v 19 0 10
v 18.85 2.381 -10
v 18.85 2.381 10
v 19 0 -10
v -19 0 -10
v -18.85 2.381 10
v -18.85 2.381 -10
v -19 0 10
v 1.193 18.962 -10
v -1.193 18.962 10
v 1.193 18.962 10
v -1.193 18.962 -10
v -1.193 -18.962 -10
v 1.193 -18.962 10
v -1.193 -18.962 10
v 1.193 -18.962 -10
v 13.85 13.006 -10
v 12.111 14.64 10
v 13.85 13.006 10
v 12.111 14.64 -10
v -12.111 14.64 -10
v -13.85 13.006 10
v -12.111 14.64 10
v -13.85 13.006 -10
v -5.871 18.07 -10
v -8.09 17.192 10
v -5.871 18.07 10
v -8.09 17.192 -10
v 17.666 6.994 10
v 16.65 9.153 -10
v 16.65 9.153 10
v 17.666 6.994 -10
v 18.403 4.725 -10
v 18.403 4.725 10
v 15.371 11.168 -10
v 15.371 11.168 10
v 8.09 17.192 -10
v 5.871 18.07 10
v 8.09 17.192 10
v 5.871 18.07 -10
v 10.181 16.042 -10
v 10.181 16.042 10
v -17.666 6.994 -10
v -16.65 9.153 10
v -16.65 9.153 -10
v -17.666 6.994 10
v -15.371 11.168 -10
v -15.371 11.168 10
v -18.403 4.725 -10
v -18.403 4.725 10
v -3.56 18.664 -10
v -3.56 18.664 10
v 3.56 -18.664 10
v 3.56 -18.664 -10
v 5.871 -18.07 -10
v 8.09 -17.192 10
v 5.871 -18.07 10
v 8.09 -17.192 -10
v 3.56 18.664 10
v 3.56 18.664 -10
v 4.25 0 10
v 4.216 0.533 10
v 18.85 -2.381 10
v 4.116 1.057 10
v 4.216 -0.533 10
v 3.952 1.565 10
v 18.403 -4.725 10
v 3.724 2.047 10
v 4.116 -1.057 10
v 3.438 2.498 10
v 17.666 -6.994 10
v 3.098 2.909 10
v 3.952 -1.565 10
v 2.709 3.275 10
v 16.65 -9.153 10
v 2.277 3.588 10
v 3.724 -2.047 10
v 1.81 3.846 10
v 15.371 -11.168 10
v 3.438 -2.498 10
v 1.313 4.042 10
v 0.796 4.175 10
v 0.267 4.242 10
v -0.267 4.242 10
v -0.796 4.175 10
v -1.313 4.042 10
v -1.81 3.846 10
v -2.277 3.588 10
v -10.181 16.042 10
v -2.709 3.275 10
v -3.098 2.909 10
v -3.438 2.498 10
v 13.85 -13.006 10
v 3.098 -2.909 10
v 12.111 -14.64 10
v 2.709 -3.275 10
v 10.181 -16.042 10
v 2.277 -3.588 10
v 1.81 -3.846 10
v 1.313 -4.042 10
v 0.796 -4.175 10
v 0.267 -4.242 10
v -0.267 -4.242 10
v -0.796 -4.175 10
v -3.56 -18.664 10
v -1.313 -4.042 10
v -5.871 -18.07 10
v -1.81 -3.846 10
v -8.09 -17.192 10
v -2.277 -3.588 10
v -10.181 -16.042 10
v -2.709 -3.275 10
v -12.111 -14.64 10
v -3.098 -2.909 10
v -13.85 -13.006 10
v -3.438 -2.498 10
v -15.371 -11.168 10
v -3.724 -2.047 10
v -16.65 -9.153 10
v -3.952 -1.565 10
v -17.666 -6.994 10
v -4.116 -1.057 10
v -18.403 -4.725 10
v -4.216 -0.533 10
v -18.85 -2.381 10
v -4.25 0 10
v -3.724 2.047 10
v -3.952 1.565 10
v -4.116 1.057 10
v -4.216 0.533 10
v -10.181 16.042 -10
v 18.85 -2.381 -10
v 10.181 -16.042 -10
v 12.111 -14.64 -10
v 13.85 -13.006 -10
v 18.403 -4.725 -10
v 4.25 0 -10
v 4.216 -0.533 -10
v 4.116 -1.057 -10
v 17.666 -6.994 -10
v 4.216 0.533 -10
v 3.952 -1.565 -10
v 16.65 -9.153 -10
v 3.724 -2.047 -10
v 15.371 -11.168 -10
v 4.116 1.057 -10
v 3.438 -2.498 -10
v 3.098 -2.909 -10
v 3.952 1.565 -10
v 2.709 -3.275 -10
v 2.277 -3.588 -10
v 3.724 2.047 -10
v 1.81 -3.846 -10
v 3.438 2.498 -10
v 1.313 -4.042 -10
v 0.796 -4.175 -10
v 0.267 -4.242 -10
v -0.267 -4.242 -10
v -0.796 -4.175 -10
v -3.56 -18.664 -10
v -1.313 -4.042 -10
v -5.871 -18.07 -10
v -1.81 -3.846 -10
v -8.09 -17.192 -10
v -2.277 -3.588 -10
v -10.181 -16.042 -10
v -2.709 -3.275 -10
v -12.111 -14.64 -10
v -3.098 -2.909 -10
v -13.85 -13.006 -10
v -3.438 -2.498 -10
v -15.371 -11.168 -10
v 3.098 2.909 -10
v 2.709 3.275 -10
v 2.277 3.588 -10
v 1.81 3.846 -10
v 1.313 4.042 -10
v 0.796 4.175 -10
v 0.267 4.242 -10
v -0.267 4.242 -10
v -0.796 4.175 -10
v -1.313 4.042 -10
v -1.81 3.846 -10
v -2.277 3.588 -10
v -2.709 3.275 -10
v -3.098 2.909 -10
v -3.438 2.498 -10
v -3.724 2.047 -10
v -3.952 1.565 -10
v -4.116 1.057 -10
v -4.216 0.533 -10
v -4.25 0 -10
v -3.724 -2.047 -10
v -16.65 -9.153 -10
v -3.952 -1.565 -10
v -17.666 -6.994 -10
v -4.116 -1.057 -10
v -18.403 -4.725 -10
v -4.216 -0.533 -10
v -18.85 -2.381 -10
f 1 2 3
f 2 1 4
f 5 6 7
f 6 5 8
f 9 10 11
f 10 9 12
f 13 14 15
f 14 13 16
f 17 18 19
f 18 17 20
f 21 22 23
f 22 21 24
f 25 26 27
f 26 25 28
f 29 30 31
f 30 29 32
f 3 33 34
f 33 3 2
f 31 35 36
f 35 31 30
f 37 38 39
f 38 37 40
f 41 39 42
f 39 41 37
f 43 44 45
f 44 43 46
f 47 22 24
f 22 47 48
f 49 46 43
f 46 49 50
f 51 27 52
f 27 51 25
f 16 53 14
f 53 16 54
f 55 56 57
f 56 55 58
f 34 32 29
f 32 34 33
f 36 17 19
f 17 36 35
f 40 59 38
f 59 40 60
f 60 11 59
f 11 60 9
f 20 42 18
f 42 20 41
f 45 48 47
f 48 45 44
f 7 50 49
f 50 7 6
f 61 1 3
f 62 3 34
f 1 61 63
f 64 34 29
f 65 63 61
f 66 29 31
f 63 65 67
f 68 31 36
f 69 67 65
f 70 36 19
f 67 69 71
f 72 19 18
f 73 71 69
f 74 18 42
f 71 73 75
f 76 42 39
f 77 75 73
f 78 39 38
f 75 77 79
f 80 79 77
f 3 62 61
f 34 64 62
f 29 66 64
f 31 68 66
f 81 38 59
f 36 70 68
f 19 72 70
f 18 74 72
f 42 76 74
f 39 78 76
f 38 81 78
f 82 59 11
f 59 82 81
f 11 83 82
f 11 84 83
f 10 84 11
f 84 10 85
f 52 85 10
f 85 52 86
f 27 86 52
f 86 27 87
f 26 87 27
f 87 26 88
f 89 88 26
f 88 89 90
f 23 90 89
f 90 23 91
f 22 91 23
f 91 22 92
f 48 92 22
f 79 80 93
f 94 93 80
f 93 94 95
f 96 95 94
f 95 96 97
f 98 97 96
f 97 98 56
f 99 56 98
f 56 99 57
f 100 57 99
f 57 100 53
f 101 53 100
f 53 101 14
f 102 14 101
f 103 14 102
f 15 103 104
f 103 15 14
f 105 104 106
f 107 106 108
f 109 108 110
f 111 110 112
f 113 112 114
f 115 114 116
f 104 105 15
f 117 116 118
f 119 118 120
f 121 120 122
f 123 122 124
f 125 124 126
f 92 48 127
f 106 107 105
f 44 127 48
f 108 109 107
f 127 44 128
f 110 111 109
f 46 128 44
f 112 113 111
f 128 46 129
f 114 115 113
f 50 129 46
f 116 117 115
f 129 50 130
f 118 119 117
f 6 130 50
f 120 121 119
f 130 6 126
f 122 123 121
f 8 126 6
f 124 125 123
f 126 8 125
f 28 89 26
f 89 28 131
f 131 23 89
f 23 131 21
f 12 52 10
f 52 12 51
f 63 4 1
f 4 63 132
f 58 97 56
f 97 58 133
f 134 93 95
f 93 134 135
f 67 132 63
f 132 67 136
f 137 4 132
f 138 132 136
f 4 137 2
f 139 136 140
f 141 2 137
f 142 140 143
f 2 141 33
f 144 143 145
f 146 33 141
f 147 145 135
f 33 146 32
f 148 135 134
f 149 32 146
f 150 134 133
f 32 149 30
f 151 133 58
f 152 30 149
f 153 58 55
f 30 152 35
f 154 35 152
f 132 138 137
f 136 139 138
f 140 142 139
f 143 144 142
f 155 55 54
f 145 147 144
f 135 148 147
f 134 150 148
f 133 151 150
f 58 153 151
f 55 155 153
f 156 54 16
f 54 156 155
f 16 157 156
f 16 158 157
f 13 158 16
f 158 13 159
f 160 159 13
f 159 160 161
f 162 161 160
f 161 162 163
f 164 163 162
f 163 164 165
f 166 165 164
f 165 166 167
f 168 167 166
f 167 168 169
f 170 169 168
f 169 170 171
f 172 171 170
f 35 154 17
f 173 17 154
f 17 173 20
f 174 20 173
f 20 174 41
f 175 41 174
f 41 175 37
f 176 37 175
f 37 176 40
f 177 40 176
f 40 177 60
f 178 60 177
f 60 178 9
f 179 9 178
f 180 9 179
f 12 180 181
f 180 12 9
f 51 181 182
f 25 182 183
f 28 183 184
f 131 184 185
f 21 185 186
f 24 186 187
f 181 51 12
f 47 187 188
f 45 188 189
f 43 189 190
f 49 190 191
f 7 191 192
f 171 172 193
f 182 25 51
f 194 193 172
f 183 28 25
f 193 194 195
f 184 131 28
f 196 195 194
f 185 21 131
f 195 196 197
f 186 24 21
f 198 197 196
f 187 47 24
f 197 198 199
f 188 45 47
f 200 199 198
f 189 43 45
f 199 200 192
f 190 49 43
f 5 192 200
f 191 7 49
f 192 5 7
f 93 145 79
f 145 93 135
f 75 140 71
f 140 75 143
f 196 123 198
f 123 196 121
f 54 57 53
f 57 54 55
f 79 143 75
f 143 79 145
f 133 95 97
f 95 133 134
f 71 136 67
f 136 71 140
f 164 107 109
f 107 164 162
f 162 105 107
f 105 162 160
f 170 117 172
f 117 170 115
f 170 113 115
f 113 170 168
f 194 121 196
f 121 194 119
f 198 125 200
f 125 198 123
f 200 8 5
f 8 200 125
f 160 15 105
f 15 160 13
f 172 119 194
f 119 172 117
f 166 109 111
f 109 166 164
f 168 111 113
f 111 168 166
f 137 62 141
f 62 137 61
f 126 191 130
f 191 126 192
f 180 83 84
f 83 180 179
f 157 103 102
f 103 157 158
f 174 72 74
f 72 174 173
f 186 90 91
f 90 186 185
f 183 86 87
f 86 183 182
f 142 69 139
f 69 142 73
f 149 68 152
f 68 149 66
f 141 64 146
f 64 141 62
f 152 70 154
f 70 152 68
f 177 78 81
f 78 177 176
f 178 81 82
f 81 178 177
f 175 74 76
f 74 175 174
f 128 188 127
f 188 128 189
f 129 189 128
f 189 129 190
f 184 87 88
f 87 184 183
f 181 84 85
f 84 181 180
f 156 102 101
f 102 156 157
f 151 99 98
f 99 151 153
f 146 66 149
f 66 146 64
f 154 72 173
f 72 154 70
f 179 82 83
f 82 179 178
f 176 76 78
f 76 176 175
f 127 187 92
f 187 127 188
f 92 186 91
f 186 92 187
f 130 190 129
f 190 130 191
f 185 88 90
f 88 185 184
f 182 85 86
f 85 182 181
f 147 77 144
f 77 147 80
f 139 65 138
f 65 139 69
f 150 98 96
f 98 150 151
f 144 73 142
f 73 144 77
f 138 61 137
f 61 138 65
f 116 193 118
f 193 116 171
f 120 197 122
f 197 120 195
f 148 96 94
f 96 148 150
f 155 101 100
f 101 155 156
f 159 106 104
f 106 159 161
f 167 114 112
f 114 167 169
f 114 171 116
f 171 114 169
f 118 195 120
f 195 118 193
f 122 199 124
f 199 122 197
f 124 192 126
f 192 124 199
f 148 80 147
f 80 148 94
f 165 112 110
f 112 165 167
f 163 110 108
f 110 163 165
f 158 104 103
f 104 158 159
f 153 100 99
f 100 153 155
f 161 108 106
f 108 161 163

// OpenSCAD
$fn = 50;


difference() {
	union() {
		translate(v = [0, 0, -10.0000000000]) {
			cylinder(h = 20, r = 19.0000000000);
		}
	}
	union() {
		translate(v = [0, 0, -100.0000000000]) {
			cylinder(h = 200, r = 4.2500000000);
		}
	}
}
